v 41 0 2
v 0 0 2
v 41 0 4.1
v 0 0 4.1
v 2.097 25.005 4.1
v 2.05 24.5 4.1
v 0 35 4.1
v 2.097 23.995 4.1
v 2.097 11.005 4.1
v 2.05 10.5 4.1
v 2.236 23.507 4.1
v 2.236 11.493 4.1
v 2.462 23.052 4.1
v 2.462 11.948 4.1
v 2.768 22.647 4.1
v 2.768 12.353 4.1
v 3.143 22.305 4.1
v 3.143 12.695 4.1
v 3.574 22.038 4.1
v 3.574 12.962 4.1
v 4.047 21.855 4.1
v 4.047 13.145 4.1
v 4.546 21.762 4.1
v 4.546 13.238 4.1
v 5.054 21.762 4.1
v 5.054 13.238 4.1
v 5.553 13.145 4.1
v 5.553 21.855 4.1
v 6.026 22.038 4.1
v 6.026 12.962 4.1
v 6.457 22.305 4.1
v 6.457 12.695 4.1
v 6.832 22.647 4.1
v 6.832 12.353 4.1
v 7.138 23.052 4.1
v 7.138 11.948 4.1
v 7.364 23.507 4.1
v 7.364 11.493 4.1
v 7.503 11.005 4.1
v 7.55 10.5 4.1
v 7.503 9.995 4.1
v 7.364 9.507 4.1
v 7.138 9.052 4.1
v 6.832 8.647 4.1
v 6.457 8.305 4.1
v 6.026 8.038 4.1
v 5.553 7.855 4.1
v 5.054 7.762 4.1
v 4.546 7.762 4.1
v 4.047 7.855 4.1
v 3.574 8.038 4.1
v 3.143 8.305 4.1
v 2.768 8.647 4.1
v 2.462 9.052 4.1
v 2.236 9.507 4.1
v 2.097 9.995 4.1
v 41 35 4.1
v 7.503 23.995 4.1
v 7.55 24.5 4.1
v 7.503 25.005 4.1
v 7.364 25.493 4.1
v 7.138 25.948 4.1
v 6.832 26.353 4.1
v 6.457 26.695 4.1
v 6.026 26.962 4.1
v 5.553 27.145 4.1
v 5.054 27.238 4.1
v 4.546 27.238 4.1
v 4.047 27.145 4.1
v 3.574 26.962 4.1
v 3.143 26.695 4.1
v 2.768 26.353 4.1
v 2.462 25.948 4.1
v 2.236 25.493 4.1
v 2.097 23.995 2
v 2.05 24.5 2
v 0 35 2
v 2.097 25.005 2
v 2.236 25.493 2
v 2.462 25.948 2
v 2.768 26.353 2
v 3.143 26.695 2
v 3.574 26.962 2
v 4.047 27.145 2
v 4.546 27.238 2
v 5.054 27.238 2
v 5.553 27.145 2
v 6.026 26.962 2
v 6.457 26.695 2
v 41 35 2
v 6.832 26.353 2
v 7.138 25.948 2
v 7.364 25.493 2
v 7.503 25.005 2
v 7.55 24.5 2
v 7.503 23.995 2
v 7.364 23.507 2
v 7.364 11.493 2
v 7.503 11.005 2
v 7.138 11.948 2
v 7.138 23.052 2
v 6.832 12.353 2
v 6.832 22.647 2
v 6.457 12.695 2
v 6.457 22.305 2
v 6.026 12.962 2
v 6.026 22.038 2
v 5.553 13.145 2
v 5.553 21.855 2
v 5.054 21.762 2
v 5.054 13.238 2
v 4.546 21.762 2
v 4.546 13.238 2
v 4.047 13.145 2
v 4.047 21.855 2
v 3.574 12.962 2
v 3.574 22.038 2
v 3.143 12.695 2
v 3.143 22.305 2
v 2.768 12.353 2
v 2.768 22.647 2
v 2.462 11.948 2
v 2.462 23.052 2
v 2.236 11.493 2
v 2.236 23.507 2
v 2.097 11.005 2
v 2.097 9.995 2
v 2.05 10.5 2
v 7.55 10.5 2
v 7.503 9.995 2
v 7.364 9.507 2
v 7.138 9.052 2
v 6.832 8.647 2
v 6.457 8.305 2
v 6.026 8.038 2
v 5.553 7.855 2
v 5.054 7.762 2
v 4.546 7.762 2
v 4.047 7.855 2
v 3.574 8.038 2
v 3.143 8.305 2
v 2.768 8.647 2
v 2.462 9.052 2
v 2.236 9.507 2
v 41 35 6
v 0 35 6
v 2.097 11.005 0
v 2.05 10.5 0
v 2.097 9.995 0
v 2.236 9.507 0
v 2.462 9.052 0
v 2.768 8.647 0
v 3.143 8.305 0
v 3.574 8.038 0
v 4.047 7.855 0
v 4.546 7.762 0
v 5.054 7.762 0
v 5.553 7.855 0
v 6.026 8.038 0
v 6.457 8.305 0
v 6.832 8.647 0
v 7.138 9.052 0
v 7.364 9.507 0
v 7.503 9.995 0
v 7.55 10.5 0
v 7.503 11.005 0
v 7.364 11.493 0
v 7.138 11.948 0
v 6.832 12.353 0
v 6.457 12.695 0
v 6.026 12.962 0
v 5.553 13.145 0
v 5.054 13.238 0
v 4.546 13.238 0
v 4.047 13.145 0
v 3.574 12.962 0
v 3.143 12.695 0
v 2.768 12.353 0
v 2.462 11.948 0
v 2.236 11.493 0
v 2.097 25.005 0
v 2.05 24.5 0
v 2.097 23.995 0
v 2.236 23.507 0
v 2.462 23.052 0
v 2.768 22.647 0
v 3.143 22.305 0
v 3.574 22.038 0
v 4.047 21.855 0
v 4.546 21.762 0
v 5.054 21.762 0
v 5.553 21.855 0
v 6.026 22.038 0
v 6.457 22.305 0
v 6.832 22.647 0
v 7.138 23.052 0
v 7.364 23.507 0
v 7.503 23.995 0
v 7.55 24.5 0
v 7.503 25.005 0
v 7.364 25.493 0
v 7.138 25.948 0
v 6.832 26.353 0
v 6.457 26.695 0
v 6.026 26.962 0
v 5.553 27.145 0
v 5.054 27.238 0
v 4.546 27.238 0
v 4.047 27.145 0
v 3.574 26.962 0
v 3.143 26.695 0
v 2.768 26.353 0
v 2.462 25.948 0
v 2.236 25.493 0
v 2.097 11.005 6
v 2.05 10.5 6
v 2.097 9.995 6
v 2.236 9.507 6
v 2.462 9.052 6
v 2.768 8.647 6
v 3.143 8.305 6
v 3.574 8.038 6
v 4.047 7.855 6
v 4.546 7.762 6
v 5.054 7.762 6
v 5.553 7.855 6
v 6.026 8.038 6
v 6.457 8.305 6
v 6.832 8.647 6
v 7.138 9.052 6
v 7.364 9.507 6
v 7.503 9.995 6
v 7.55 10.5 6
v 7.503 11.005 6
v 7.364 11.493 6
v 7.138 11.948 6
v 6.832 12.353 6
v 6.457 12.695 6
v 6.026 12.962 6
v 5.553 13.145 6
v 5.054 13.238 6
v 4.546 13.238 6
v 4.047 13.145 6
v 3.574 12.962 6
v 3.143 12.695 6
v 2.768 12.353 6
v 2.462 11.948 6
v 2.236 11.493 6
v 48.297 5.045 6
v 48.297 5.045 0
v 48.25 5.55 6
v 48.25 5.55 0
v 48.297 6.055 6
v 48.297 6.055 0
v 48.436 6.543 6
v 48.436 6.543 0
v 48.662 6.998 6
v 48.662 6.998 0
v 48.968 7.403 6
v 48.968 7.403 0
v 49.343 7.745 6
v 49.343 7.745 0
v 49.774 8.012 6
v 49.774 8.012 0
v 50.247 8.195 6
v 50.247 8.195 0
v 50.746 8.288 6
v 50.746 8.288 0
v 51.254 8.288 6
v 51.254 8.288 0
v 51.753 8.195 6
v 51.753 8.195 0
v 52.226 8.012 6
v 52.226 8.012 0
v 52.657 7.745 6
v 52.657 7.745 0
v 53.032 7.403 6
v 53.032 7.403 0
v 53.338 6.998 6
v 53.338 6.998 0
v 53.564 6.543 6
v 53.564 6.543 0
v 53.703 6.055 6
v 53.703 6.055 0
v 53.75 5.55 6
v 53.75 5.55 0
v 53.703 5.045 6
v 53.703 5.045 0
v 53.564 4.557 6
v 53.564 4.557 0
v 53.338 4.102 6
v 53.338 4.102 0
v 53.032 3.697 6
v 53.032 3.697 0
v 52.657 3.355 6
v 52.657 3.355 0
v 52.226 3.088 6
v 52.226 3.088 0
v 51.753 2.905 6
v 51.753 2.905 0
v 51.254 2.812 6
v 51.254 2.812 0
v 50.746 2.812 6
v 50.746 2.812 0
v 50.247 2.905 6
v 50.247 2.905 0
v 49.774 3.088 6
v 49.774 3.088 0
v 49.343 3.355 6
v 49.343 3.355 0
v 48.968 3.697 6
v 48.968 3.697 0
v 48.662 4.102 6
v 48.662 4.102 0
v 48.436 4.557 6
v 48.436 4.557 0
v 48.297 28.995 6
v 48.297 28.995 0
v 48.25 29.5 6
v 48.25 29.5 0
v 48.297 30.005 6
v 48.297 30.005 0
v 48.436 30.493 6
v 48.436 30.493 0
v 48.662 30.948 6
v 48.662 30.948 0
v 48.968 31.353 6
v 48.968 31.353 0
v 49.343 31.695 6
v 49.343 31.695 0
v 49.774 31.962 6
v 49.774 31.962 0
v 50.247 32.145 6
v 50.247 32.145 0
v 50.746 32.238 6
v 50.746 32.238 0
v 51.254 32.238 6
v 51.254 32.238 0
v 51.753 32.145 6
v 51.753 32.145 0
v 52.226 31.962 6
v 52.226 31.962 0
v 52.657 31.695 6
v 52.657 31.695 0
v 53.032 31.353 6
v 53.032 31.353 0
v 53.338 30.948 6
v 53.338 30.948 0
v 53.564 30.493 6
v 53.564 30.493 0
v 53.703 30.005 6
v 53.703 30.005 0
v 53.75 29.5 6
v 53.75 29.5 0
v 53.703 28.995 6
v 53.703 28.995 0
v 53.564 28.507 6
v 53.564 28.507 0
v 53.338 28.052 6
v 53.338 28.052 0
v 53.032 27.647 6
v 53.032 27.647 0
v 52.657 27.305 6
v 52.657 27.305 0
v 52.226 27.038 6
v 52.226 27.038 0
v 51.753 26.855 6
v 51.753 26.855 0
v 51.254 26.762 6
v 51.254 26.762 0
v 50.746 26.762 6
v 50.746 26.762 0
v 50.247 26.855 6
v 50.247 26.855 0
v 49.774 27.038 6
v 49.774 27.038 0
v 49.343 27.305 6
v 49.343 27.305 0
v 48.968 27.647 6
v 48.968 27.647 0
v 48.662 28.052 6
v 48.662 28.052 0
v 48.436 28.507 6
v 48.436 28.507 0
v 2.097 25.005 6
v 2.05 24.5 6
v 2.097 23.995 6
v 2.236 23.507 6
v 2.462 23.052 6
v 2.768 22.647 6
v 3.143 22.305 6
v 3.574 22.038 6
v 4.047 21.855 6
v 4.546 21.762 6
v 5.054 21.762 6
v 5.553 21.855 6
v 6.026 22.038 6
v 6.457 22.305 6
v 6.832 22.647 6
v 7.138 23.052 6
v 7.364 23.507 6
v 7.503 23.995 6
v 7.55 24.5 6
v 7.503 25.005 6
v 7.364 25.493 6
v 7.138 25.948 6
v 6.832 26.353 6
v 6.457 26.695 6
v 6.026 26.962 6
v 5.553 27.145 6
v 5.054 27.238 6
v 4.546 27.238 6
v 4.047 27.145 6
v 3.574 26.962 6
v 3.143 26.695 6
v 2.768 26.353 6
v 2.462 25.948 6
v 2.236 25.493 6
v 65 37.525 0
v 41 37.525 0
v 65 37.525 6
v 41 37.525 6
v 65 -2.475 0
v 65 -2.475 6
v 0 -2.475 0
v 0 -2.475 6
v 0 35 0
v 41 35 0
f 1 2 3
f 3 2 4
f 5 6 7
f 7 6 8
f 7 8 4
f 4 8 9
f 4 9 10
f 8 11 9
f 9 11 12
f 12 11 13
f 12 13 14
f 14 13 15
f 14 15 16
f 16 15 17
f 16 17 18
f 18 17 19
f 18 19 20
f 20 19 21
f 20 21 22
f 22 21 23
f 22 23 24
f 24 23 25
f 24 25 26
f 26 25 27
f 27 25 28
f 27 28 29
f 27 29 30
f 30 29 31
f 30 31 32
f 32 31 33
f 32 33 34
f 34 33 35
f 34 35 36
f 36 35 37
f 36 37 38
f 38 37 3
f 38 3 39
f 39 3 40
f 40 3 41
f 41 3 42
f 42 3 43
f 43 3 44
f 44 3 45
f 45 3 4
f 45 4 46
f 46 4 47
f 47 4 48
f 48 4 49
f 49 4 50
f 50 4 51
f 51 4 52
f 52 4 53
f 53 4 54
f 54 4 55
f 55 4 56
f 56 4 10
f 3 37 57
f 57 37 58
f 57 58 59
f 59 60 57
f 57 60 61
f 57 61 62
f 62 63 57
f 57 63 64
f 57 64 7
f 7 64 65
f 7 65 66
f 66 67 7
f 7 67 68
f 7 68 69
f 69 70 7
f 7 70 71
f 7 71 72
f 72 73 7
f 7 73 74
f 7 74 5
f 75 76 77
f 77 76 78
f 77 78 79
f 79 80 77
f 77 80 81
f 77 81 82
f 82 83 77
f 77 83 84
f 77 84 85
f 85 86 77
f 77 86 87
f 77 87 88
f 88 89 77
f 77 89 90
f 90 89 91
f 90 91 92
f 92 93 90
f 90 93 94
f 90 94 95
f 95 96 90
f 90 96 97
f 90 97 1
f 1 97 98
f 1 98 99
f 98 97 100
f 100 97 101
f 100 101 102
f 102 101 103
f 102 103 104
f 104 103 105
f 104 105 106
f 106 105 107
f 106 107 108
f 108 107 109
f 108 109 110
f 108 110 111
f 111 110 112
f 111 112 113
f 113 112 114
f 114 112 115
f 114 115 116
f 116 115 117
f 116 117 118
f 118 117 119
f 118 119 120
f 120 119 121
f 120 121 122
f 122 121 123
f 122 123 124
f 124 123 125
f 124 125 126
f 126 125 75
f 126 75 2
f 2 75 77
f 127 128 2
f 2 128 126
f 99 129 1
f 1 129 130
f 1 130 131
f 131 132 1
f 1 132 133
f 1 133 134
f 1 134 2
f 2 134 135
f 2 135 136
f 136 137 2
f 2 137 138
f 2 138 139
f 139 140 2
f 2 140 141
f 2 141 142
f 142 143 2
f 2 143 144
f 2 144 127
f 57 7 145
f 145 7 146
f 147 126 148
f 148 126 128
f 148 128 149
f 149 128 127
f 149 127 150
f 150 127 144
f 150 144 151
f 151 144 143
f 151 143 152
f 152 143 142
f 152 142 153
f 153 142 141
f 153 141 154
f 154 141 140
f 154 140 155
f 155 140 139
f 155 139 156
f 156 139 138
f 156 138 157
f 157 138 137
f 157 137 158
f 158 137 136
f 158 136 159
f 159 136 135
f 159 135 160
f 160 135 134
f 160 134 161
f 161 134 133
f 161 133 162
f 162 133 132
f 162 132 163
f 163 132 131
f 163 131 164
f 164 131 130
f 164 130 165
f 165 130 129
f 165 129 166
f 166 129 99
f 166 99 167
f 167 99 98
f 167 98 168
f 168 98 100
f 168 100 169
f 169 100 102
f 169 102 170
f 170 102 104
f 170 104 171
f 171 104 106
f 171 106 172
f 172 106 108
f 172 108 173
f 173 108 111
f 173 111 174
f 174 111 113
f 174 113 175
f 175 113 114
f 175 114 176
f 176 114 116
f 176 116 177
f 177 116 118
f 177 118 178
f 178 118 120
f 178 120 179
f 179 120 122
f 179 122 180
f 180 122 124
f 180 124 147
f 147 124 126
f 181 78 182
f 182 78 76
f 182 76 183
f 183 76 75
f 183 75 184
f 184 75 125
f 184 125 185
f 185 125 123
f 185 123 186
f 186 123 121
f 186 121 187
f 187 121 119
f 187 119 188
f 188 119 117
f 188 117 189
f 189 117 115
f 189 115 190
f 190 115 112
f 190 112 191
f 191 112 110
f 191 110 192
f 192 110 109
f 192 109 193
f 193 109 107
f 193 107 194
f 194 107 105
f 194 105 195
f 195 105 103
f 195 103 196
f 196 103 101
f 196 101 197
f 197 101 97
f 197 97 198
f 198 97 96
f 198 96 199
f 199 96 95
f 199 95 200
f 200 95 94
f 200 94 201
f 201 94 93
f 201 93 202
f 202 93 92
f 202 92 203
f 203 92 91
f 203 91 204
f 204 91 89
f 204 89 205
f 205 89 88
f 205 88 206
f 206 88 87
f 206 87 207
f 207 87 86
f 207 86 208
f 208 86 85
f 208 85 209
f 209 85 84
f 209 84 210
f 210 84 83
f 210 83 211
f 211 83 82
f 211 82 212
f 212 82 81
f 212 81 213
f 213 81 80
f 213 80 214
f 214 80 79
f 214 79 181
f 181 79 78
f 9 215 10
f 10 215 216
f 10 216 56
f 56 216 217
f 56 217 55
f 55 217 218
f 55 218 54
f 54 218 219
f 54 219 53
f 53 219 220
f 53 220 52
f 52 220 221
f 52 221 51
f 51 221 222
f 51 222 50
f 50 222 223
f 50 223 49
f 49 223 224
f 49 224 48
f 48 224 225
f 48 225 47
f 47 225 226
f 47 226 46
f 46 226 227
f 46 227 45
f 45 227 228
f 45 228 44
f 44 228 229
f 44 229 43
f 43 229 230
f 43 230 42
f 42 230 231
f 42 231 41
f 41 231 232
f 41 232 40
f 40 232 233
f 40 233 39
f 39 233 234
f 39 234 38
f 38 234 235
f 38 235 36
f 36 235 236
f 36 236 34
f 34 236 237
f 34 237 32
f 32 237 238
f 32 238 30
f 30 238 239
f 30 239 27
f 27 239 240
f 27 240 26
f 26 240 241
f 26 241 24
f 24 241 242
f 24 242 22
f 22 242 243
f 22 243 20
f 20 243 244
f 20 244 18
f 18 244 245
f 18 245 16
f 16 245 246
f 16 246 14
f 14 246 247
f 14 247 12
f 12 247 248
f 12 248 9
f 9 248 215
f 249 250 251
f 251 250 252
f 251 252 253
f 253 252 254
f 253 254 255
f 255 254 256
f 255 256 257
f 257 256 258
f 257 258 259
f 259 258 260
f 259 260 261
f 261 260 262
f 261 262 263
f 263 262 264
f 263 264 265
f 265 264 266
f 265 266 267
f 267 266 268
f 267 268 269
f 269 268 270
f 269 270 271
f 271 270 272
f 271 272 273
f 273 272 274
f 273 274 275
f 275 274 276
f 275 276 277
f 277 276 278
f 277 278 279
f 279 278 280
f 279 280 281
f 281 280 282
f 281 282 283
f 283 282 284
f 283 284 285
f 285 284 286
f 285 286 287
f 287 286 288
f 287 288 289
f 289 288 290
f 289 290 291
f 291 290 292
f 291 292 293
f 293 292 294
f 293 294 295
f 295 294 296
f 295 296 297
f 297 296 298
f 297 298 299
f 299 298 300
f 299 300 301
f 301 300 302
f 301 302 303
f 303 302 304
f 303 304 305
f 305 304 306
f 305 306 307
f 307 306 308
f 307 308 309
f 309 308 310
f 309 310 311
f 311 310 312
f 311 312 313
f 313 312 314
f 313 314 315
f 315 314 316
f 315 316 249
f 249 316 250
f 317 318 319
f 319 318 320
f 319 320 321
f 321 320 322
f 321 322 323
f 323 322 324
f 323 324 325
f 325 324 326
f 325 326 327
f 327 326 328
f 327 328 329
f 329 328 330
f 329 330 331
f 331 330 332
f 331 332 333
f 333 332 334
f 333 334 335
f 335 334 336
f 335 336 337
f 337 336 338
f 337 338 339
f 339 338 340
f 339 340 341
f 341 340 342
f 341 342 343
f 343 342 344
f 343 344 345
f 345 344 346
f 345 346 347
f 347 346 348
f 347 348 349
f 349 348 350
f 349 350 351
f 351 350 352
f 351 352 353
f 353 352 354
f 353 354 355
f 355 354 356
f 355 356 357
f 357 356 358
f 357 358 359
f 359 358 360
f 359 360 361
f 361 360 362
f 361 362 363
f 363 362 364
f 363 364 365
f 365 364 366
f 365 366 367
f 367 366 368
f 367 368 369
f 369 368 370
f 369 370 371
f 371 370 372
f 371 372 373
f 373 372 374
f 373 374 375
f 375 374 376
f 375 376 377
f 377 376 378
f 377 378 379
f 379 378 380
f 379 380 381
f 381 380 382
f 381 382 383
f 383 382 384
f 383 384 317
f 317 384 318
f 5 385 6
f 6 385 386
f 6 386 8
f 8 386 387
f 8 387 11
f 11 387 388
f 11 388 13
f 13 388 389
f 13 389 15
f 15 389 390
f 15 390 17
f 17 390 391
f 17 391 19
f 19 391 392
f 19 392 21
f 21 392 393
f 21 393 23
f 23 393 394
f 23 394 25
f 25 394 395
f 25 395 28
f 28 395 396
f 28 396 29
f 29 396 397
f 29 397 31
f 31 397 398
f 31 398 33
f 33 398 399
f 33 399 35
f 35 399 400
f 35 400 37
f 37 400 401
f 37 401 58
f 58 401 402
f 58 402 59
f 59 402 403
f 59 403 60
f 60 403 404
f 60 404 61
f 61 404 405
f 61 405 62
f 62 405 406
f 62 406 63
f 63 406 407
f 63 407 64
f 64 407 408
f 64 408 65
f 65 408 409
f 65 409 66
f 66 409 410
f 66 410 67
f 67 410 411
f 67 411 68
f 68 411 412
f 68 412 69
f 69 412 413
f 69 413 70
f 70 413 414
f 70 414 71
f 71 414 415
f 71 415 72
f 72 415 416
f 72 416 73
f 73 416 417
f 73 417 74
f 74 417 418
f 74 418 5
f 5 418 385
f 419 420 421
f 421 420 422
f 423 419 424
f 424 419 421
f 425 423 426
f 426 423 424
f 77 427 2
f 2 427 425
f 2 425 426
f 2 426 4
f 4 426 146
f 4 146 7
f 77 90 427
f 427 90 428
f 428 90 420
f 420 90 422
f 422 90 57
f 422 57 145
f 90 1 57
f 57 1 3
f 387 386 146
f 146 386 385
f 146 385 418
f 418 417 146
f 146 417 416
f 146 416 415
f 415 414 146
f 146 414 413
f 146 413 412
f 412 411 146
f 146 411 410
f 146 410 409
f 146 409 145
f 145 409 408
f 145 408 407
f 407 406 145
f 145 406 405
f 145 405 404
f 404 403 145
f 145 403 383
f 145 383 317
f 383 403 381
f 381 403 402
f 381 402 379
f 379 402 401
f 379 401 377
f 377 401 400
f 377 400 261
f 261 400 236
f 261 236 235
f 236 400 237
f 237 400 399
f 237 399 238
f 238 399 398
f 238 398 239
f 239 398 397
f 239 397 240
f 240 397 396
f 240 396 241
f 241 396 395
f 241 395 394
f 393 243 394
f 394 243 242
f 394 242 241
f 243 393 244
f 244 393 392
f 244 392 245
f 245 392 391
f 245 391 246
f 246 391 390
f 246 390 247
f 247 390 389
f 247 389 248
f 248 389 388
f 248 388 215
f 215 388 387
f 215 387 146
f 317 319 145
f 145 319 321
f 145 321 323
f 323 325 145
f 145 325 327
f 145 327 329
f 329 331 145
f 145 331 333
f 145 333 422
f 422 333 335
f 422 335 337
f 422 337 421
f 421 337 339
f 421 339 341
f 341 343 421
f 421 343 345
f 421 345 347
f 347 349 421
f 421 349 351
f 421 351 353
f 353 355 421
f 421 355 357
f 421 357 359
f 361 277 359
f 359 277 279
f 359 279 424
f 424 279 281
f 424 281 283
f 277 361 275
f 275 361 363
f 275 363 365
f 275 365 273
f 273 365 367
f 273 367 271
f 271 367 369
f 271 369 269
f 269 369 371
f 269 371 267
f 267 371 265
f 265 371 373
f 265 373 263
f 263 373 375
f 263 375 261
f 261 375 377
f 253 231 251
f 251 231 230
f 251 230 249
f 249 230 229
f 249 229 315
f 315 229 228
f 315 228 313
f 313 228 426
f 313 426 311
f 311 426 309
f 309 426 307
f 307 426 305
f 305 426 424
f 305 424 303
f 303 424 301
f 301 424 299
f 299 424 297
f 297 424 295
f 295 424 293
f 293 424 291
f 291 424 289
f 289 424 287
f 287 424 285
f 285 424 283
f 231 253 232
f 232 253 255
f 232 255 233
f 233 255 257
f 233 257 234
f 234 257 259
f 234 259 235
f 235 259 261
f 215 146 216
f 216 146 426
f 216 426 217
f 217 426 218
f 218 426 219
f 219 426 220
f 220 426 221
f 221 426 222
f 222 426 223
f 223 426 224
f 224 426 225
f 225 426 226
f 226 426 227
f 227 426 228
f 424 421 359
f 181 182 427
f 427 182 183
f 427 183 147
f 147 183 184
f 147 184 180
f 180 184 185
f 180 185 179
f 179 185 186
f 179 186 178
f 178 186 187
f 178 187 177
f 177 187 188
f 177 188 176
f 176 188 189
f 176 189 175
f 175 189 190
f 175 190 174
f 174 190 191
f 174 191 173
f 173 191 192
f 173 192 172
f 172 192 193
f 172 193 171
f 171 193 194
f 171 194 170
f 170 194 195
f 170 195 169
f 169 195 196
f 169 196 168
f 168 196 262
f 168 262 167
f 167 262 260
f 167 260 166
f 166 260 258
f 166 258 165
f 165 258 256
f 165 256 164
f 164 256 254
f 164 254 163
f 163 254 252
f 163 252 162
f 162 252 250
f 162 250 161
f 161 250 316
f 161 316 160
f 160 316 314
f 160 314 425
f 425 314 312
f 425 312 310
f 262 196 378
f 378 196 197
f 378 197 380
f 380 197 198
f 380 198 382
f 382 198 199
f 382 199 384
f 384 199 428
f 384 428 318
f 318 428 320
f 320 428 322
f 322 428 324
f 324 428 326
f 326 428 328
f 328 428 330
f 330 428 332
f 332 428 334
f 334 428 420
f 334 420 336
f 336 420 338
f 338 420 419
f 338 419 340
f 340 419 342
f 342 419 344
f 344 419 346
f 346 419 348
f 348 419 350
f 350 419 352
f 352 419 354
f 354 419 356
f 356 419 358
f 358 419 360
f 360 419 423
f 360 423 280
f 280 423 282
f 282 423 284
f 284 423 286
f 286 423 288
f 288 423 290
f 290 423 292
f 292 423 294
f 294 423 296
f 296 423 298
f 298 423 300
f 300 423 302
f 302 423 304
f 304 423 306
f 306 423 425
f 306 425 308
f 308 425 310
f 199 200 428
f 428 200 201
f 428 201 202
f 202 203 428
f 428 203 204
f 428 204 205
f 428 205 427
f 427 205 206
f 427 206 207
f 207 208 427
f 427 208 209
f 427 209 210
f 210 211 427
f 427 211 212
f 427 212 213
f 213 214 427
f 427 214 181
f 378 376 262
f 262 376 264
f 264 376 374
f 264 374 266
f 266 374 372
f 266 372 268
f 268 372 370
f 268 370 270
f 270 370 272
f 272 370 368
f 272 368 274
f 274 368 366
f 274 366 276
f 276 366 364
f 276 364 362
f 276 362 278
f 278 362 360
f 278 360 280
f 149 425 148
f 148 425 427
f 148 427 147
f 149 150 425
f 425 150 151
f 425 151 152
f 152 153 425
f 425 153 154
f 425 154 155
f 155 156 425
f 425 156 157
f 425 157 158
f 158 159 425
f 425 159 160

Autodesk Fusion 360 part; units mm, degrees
sketch "Sketch1" plane through (0, 0, 0) normal (0, 0, 1) x (1, 0, 0)
  line L0 (0, 0) -> (41, 0)
  line L1 (41, 0) -> (41, 35)
  line L2 (41, 35) -> (0, 35)
  line L3 (0, 35) -> (0, 0)
  line L4 (0, 17.5) -> (41, 17.5) construction
  circle A0 centre (4.8, 24.5) radius 2.75
  circle A1 centre (4.8, 10.5) radius 2.75
  line L5 (4.8, 24.5) -> (4.8, 10.5) construction
  line L6 (2.05, 10.5) -> (4.8, 10.5) construction
  line L7 (41, 37.525) -> (65, 37.525)
  line L8 (65, 37.525) -> (65, -2.475)
  line L9 (65, -2.475) -> (41, -2.475)
  line L10 (41, -2.475) -> (41, 0)
  line L11 (51, 29.5) -> (51, 5.55) construction
  circle A2 centre (51, 29.5) radius 2.75
  circle A3 centre (51, 5.55) radius 2.75
  line L12 (65, 17.525) -> (51, 17.525) construction
  line L13 (41, 37.525) -> (41, 35)
  line L14 (0, 0) -> (0, -2.475)
  line L15 (0, -2.475) -> (41, -2.475)
  point P0 (2.05, 10.5)
  dimension "d1" = 41
  dimension "d2" = 35
  dimension "d3" = 14
  dimension "d7" = 40
  dimension "d8" = 10
  dimension "d9" = 5.5
  dimension "d10" = 14
  dimension "d11" = 5
  dimension "d12" = 23.95
  dimension "d13" = 4.8
  dimension "d14" = 5.5
extrude "Extrude1" add sketch "Sketch1" along normal blind 6
extrude "Extrude2" cut sketch "Sketch1" along normal blind 2.1 from surface at 2 contours L0 L1 L2 L3
equation "d3 = ( ( 9 + 19 ) / 2 ) * 1 mm"
equation "d12 = ( ( 17.5 + 30.4 ) / 2 ) * 1 mm"
equation "d15 = 2 mm + 2 mm + 2 mm"
